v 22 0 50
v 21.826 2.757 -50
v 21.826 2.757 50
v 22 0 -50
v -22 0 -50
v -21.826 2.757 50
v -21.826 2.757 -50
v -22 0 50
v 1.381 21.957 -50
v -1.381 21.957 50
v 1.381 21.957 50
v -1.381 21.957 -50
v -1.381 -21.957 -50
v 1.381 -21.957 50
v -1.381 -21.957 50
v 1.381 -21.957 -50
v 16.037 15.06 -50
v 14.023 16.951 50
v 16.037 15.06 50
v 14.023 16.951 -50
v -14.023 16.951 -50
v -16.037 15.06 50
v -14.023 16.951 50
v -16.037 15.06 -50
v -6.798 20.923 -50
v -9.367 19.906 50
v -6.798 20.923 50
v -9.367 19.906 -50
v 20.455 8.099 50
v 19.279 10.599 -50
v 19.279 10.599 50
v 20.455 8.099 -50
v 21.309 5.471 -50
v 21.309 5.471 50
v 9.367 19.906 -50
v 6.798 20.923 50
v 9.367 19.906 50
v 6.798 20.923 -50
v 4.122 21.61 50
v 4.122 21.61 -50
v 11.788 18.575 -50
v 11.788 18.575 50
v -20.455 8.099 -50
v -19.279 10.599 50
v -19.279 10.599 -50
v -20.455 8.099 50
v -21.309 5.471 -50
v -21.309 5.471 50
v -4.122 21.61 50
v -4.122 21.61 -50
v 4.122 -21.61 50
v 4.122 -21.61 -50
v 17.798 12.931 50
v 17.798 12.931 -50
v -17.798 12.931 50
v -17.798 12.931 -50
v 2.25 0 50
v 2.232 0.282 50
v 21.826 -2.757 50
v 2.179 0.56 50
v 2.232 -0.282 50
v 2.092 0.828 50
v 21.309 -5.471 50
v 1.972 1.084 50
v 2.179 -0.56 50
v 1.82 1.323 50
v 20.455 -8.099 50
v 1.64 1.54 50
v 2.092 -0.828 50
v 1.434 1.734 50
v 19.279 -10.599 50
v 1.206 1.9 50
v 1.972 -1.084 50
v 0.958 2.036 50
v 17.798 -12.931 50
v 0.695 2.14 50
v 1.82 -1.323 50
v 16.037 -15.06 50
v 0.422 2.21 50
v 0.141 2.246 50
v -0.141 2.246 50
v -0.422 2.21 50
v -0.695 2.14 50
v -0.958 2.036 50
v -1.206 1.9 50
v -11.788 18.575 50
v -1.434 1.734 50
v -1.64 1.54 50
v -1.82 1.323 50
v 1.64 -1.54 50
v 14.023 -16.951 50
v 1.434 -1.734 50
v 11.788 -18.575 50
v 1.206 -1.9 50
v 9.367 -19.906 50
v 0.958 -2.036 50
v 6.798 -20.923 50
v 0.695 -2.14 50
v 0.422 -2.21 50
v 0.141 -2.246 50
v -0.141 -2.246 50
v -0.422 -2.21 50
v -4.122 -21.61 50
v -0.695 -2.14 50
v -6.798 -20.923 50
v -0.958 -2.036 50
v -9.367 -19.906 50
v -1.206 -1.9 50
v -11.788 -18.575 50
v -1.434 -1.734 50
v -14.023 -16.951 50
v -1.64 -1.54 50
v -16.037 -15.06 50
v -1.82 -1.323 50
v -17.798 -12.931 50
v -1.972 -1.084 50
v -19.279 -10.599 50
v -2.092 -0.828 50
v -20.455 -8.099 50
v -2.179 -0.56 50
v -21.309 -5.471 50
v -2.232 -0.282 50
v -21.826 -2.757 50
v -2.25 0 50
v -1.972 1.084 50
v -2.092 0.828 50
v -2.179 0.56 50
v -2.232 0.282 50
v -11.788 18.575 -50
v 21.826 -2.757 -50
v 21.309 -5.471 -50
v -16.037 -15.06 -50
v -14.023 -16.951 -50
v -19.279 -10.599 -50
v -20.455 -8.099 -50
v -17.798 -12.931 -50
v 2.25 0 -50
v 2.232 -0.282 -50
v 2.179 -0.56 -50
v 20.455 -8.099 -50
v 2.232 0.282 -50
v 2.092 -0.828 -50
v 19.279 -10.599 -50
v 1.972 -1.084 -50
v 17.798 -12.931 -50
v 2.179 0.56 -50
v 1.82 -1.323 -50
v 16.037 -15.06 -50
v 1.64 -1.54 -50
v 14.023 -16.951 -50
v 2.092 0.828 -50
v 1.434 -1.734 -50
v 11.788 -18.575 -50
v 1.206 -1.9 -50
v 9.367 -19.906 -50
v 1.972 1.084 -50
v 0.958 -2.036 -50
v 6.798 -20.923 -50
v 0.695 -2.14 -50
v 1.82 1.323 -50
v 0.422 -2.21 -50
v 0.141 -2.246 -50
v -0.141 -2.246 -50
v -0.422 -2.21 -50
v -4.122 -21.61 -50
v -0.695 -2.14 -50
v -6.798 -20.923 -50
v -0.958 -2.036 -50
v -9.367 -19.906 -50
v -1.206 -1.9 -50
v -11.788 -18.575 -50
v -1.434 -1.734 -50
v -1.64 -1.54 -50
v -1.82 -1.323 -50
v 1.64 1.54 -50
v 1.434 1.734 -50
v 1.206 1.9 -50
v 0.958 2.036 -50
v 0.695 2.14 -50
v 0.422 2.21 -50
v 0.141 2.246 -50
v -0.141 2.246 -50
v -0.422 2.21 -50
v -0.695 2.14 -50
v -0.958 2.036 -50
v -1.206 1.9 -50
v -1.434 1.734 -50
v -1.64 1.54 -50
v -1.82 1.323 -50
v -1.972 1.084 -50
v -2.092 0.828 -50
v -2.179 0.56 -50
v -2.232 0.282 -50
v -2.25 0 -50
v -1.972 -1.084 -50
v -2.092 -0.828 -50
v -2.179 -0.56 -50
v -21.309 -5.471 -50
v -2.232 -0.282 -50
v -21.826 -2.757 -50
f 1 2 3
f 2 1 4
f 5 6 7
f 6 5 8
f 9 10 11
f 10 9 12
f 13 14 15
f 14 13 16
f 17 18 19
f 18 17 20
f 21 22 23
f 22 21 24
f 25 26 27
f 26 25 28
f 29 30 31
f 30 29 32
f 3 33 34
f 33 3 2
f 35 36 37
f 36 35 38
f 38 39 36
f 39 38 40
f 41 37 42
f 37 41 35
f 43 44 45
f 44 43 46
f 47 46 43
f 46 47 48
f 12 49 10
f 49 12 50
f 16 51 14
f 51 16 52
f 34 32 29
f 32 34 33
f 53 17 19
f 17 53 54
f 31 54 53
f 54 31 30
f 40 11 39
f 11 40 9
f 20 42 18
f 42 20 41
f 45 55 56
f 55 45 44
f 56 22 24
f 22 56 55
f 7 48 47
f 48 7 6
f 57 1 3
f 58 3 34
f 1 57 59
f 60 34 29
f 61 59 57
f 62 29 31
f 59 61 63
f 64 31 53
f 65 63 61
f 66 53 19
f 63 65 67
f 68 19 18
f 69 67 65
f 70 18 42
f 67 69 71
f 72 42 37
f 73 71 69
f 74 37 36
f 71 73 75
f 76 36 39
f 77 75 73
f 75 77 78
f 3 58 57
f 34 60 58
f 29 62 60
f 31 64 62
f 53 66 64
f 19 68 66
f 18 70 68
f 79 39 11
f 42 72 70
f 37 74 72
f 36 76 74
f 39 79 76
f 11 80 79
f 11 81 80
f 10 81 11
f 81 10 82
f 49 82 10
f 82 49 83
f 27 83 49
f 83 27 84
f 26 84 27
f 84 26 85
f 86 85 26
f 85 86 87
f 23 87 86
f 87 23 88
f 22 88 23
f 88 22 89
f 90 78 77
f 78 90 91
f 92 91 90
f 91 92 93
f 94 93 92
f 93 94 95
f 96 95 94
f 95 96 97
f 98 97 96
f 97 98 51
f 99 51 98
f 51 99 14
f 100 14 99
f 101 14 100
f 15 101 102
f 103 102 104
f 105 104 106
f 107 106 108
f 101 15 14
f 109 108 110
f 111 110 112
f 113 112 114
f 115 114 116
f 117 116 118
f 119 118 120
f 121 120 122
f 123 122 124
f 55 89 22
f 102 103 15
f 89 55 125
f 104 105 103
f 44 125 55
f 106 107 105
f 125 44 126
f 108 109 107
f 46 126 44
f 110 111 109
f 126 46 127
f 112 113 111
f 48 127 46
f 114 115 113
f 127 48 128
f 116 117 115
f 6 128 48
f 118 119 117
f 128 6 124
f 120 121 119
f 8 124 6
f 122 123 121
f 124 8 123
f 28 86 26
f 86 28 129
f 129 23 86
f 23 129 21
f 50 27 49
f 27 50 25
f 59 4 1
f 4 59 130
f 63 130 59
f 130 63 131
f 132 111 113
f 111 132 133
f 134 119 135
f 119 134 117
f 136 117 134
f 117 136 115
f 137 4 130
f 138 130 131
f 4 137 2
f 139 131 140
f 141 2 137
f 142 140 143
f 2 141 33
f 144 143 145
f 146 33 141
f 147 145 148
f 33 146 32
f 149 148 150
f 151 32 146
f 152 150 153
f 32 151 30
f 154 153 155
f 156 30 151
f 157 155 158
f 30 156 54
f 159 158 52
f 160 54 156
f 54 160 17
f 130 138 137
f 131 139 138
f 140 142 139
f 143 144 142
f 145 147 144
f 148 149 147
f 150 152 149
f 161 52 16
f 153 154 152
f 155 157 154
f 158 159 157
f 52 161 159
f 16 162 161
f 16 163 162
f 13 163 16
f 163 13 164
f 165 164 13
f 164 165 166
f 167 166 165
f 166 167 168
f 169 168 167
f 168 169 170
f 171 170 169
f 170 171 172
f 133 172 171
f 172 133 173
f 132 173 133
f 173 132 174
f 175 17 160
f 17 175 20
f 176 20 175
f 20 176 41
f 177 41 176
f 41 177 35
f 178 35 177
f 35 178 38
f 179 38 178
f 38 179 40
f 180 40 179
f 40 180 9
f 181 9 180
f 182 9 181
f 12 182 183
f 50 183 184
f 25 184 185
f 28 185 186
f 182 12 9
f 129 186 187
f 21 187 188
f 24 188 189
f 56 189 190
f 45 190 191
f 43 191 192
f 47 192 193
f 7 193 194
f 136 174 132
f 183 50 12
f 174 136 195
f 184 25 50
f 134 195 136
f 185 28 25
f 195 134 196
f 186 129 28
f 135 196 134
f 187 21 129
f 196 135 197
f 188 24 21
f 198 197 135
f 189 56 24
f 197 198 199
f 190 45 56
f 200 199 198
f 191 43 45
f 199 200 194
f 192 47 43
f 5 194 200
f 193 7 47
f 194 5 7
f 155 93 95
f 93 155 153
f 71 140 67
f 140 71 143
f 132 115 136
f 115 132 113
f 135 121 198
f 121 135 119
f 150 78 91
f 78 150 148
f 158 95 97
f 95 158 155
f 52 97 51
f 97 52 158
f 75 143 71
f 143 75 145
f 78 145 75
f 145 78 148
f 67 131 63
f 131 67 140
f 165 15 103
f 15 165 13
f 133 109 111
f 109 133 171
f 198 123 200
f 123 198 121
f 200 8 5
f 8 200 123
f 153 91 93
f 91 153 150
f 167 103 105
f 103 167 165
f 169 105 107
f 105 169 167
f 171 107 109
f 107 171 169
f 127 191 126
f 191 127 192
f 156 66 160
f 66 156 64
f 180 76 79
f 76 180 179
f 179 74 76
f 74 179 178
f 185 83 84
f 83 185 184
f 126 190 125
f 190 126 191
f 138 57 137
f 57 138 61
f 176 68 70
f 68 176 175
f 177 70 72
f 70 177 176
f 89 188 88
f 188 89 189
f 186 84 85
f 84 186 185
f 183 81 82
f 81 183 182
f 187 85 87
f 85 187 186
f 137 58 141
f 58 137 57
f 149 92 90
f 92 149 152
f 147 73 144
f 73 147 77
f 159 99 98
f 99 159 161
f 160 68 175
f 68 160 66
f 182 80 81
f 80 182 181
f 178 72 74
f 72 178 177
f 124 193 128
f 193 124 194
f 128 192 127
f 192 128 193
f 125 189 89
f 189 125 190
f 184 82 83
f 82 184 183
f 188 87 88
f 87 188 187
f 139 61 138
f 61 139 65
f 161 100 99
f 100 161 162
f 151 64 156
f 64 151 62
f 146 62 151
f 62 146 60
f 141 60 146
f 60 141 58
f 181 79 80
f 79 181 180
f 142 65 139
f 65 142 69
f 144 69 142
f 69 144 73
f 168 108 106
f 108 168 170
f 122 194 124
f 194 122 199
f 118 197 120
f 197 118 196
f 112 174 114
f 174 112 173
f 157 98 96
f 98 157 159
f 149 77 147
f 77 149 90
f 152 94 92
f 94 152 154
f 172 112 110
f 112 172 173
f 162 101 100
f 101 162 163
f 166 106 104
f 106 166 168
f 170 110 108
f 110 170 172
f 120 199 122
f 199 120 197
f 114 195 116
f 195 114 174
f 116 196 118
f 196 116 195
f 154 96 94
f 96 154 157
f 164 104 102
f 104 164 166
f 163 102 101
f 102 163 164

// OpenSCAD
$fn = 50;


difference() {
	union() {
		translate(v = [0, 0, -50.0000000000]) {
			cylinder(h = 100, r = 22.0000000000);
		}
	}
	union() {
		translate(v = [0, 0, -100.0000000000]) {
			cylinder(h = 200, r = 2.2500000000);
		}
	}
}
